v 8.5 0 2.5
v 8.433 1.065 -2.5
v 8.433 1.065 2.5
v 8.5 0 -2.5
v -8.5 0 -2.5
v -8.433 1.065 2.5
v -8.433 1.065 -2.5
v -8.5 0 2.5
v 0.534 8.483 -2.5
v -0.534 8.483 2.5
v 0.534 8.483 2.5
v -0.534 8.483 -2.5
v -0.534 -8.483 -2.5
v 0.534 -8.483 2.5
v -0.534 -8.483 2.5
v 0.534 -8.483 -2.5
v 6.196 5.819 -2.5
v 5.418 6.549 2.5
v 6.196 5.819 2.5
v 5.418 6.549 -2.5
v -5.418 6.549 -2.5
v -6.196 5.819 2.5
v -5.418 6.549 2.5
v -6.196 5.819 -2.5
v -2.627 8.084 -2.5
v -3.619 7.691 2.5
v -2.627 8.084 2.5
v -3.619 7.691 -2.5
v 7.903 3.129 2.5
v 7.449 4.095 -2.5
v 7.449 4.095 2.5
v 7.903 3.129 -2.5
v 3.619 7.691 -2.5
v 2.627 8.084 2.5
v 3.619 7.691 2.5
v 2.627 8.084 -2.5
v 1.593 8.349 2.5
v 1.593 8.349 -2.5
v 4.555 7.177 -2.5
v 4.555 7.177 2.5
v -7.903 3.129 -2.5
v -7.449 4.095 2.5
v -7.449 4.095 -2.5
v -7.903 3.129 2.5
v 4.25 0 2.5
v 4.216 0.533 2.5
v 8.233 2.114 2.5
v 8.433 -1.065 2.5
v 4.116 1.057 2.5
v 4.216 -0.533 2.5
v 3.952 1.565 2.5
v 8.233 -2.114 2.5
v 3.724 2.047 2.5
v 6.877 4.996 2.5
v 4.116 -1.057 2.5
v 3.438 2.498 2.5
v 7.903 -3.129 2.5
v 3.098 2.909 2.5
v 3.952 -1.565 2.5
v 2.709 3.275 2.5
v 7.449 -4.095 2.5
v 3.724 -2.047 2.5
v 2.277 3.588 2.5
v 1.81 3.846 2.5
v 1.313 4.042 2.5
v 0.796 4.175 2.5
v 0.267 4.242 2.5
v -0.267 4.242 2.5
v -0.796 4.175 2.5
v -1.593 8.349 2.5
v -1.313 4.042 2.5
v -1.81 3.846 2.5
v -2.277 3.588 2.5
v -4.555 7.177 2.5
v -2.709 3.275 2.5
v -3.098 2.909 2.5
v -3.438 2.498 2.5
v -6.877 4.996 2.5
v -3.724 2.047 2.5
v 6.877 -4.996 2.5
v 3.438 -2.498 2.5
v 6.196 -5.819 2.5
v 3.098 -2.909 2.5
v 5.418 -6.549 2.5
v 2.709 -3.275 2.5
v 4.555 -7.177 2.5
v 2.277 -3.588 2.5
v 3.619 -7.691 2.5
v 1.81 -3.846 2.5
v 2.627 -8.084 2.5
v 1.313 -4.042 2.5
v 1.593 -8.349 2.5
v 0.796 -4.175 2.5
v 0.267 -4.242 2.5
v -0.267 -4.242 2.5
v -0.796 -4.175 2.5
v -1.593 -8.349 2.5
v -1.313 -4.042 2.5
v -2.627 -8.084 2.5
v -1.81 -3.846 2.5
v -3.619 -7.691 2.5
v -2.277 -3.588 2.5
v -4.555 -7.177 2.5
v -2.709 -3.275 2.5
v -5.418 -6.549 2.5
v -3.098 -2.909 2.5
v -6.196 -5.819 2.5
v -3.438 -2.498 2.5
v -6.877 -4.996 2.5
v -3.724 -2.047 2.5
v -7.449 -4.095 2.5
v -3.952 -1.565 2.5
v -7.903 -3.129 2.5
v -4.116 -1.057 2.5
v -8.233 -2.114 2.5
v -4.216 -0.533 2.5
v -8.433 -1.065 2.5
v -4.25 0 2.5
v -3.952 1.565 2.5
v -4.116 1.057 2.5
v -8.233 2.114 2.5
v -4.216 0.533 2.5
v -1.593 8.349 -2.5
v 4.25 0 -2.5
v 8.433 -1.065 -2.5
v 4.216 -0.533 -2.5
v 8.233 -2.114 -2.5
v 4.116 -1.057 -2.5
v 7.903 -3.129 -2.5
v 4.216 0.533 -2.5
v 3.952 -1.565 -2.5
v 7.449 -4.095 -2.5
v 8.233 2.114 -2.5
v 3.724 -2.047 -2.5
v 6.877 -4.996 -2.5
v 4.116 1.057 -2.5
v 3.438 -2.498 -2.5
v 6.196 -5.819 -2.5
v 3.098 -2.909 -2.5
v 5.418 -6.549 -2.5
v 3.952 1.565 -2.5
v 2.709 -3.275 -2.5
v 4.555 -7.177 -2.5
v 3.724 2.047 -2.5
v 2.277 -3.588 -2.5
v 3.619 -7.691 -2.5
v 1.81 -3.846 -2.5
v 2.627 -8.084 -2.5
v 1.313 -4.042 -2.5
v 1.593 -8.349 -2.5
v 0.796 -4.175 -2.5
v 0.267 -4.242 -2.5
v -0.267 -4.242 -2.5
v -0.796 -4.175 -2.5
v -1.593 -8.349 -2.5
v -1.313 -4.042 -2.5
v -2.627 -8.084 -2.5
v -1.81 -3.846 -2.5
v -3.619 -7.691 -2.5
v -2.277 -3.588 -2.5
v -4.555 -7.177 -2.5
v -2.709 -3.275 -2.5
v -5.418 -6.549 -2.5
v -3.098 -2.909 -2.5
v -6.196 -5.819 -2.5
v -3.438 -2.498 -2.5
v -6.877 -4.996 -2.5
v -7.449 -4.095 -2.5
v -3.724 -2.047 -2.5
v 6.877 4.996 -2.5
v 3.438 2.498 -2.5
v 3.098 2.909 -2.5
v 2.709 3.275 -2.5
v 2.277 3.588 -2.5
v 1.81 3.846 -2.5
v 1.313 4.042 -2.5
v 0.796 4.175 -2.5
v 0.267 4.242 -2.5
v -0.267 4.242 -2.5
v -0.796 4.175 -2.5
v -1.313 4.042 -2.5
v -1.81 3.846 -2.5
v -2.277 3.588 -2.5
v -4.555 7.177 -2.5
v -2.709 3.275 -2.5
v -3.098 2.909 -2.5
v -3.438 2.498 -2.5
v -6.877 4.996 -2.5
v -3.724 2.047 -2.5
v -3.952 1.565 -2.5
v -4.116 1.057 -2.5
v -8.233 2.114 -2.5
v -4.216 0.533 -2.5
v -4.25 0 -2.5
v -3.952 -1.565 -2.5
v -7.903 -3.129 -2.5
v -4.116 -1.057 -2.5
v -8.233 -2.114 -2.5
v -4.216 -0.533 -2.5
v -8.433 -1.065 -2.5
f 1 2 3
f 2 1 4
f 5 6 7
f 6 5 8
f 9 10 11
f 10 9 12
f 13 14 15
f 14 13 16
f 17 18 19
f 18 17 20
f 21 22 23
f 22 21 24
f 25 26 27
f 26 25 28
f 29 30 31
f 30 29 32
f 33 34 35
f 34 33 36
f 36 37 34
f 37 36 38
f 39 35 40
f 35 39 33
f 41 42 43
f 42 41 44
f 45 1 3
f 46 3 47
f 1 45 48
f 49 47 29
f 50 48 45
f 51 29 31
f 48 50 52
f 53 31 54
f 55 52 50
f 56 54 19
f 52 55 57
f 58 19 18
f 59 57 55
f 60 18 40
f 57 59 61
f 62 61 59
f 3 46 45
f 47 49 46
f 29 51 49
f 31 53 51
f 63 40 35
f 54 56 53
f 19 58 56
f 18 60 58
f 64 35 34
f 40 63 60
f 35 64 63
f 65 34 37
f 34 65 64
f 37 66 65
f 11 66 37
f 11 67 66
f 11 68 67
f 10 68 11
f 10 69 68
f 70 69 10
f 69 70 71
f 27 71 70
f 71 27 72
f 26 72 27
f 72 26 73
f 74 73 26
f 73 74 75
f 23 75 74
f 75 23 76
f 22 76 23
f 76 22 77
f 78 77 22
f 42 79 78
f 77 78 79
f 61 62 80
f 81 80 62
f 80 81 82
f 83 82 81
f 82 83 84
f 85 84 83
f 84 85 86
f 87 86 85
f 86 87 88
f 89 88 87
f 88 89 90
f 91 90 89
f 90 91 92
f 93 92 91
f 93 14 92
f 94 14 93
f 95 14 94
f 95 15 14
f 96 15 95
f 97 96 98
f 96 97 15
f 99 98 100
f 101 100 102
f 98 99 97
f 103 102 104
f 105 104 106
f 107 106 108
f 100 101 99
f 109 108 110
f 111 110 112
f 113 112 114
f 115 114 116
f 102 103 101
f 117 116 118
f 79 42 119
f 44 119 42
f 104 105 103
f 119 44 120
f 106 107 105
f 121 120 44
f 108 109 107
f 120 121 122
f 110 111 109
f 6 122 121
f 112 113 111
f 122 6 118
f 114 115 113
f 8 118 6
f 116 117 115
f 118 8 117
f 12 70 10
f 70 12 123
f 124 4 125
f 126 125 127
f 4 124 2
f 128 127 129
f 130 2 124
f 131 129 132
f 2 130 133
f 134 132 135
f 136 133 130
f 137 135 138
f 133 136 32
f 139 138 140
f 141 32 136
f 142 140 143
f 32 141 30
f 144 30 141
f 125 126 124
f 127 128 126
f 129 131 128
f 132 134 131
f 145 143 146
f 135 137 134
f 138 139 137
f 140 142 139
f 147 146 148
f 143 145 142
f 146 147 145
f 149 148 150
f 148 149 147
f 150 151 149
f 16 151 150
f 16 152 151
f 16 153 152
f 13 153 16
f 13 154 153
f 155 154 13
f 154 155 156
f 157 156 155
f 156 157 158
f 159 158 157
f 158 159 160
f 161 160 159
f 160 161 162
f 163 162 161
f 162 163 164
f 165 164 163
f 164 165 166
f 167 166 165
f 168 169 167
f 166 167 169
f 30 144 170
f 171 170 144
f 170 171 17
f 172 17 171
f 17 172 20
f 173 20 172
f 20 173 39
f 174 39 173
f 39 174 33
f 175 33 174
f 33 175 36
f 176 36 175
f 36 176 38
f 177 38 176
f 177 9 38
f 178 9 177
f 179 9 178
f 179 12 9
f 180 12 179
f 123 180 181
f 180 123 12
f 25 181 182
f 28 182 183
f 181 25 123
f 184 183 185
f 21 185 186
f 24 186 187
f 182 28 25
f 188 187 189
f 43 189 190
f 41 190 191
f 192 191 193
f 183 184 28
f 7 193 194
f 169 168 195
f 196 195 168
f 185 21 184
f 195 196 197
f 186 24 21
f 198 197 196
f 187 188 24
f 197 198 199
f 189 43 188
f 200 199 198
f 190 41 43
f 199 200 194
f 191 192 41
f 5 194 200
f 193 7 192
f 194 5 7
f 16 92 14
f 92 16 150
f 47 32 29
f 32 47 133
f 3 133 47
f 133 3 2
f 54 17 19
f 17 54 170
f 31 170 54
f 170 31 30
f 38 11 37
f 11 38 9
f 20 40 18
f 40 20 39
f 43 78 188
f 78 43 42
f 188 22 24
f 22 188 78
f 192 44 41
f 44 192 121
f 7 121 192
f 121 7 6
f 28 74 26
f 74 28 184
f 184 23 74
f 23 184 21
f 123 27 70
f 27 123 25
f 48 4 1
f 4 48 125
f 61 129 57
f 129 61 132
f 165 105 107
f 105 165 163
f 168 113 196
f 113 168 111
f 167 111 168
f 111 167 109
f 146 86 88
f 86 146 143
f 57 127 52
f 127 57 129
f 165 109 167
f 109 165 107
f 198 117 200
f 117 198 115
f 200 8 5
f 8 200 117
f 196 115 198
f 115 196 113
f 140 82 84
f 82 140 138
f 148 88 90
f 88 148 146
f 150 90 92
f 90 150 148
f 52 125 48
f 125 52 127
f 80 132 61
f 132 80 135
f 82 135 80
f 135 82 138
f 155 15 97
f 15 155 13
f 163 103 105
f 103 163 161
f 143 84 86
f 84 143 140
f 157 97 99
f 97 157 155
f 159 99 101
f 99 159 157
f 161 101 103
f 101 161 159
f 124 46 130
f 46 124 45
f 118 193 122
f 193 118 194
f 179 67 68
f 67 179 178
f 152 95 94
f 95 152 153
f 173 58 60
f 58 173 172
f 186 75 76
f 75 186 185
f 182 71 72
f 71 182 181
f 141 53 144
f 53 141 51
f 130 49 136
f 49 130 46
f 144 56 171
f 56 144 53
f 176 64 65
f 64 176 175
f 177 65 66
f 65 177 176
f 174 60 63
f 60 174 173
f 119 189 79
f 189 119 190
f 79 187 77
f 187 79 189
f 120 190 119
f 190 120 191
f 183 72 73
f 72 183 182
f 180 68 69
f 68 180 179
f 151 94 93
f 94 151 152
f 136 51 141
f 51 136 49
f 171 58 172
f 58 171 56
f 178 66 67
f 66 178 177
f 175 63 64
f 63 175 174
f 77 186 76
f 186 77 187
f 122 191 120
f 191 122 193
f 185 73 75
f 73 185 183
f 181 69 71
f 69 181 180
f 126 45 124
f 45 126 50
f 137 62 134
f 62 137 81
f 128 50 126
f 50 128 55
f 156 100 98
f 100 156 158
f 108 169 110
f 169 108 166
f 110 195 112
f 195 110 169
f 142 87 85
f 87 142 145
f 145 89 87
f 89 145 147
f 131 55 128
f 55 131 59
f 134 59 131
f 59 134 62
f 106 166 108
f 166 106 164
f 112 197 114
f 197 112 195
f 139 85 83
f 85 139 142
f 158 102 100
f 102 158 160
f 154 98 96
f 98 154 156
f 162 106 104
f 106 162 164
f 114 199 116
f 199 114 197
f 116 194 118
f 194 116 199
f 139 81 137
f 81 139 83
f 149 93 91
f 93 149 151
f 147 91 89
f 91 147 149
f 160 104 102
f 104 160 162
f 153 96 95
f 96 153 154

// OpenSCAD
$fn = 50;


difference() {
	union() {
		translate(v = [0, 0, -2.5000000000]) {
			cylinder(h = 5, r = 8.5000000000);
		}
	}
	union() {
		translate(v = [0, 0, -100.0000000000]) {
			cylinder(h = 200, r = 4.2500000000);
		}
	}
}
